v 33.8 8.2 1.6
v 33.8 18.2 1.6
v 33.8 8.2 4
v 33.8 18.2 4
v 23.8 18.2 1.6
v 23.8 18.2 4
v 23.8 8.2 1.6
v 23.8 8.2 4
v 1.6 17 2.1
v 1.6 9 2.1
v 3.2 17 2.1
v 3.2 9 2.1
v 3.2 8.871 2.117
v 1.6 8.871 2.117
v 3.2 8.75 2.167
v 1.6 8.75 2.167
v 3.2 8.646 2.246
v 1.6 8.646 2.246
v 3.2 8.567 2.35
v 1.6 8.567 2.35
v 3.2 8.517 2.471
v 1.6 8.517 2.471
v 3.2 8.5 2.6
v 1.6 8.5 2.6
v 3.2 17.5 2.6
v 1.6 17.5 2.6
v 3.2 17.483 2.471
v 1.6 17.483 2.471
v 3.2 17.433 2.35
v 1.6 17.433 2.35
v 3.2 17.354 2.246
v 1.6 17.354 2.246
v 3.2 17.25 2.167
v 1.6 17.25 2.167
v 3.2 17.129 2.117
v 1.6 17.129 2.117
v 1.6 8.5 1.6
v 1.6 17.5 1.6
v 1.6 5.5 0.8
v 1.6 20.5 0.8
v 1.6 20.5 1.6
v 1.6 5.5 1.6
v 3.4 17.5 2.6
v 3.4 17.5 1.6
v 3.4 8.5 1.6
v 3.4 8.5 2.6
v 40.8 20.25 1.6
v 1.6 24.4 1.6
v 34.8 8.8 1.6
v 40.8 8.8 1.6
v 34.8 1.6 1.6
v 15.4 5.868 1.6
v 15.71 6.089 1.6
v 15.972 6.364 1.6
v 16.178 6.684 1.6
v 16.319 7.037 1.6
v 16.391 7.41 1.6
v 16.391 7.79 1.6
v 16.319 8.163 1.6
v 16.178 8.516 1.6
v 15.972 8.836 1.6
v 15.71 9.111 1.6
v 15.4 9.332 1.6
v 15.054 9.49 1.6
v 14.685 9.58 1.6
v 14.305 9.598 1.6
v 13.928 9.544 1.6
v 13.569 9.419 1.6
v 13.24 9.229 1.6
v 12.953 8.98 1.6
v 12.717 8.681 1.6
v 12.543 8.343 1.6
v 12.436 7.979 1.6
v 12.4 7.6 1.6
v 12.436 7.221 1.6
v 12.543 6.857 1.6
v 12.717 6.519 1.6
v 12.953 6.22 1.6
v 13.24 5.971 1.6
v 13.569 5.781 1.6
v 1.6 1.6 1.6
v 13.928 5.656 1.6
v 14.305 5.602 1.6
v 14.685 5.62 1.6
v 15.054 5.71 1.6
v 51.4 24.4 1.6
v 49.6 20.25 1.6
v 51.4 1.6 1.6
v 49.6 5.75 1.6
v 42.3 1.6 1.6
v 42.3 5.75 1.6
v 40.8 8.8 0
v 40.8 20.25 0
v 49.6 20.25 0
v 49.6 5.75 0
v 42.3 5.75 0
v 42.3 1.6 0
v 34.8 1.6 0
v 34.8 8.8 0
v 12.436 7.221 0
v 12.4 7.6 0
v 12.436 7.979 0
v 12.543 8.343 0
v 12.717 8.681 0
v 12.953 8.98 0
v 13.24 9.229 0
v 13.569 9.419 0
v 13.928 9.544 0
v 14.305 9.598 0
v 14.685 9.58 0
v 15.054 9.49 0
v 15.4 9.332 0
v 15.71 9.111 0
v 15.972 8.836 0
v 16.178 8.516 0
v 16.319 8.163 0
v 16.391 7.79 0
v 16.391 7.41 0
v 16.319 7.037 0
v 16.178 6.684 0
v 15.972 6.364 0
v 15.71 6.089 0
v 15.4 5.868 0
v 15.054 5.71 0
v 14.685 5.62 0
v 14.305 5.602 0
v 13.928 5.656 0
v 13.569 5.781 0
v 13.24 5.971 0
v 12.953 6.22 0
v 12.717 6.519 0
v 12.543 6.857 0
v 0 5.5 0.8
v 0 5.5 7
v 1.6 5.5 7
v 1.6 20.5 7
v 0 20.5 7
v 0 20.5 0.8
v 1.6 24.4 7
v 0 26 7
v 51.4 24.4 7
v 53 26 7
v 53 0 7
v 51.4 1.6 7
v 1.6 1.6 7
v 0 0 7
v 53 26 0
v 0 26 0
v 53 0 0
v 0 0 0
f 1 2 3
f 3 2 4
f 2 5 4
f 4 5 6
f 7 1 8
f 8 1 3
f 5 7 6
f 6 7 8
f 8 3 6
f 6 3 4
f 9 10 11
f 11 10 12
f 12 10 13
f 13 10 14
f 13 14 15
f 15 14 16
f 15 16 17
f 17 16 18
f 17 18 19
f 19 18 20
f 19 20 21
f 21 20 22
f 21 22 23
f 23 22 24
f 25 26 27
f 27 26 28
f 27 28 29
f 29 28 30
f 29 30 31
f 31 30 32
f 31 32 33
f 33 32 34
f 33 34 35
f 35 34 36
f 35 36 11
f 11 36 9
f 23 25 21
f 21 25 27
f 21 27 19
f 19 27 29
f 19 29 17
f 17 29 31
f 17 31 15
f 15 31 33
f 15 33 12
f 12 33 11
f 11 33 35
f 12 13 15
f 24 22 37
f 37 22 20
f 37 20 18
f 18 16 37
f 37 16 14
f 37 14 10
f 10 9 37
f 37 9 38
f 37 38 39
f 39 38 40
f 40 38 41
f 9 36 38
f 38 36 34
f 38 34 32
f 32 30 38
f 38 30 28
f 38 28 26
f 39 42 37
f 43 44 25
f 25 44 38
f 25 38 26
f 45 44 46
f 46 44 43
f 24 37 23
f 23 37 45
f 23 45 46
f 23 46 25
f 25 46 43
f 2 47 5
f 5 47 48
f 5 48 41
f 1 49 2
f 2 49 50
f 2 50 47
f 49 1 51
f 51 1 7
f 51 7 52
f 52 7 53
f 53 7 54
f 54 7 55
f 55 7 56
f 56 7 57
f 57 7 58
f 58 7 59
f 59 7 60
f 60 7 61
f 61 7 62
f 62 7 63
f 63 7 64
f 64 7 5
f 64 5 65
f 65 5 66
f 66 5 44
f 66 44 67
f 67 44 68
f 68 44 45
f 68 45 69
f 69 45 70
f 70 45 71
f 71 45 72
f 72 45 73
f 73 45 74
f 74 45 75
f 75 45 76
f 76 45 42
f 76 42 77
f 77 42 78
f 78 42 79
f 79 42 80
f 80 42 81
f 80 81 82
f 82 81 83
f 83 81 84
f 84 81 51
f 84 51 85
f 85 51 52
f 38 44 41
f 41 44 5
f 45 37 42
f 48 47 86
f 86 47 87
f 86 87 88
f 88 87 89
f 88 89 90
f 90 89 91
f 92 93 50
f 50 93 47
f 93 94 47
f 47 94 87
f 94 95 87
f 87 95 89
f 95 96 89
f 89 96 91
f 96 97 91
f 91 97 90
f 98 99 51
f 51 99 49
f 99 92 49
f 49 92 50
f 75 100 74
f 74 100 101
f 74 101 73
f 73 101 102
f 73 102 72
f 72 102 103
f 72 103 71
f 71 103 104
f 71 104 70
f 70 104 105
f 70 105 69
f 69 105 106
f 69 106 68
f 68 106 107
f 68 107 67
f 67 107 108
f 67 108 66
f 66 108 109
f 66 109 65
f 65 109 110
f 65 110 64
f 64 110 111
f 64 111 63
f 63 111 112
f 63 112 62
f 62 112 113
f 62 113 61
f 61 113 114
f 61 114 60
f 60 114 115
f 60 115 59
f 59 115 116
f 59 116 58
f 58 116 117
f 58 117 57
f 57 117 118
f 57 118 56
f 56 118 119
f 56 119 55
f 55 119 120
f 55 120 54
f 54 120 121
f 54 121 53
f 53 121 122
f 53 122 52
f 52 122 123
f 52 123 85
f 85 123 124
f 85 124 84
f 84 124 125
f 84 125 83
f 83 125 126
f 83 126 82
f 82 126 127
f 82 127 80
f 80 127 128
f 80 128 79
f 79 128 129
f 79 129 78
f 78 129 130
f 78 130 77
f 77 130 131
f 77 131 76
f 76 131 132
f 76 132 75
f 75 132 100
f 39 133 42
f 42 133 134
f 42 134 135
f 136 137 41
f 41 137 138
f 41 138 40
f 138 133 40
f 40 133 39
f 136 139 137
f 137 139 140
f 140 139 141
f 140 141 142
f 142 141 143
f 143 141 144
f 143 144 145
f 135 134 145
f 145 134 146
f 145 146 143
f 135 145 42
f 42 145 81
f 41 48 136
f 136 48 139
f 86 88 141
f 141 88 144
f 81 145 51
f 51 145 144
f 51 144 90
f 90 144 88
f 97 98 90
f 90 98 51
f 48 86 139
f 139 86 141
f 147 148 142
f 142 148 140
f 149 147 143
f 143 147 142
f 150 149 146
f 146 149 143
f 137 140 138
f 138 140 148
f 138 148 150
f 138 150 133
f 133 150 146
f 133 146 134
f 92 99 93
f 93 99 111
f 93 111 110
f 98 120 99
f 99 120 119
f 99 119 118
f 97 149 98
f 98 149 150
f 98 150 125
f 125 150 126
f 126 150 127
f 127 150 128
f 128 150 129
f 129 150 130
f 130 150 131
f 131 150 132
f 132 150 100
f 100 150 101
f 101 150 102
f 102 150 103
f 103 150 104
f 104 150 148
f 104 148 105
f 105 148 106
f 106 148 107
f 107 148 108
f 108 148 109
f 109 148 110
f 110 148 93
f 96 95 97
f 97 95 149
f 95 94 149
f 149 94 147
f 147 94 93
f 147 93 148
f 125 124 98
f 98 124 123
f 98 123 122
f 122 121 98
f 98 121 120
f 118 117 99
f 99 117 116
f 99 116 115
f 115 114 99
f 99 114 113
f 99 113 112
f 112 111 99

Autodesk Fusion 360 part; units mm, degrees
sketch "Skizze1" plane through (0, 0, 0) normal (0, 0, 1) x (1, 0, 0)
  line L0 (0, 0) -> (53, 0)
  line L1 (53, 0) -> (53, 26)
  line L2 (53, 26) -> (0, 26)
  line L3 (0, 26) -> (0, 0)
  line L4 (1.6, 1.6) -> (51.4, 1.6)
  line L5 (51.4, 1.6) -> (51.4, 24.4)
  line L6 (51.4, 24.4) -> (1.6, 24.4)
  line L7 (1.6, 24.4) -> (1.6, 1.6)
  line L8 (3.4, 3.4) -> (49.6, 3.4)
  line L9 (49.6, 3.4) -> (49.6, 22.6)
  line L10 (49.6, 22.6) -> (3.4, 22.6)
  line L11 (3.4, 22.6) -> (3.4, 3.4)
  circle A0 centre (14.4, 7.6) radius 2
  line L12 (40.8, 20.25) -> (49.6, 20.25)
  line L13 (49.6, 20.25) -> (49.6, 5.75)
  line L14 (49.6, 5.75) -> (40.8, 5.75)
  line L15 (40.8, 5.75) -> (40.8, 20.25)
  line L16 (34.3, 22.6) -> (40.4, 22.6)
  line L17 (3.4, 8.5) -> (1.6, 8.5)
  line L18 (1.6, 8.5) -> (1.6, 17.5)
  line L19 (1.6, 17.5) -> (3.4, 17.5)
  line L20 (3.4, 17.5) -> (3.4, 8.5)
  line L21 (23.8, 8.2) -> (33.8, 8.2)
  line L22 (33.8, 8.2) -> (33.8, 18.2)
  line L23 (33.8, 18.2) -> (23.8, 18.2)
  line L24 (23.8, 18.2) -> (23.8, 8.2)
  line L25 (34.8, 1.6) -> (42.3, 1.6)
  line L26 (42.3, 1.6) -> (42.3, 8.8)
  line L27 (42.3, 8.8) -> (34.8, 8.8)
  line L28 (34.8, 8.8) -> (34.8, 1.6)
  dimension "d1" = 46.2
  dimension "d2" = 19.2
  dimension "d3" = 1.6
  dimension "d4" = 1.8
  dimension "d5" = 1.6
  dimension "d6" = 1.8
  dimension "d7" = 1.8
  dimension "d8" = 1.6
  dimension "d9" = 1.8
  dimension "d10" = 1.6
  dimension "d20" = 4
  dimension "d21" = 12.8
  dimension "d26" = 14.5
  dimension "d29" = 6
  dimension "d34" = 8.8
  dimension "d35" = 9
  dimension "d45" = 10
  dimension "d46" = 10
  dimension "d47" = 15.8
  dimension "d48" = 4.8
  dimension "d51" = 9.1
  dimension "d52" = 7.5
  dimension "d53" = 7.2
extrude "Extrusion1" add sketch "Skizze1" along normal blind 1.6 contours L0 L1 L2 L3 | L4 L7 L8 L11 L17 L28 | L4 L8 L25 L26 L28 | L7 L11 L17 L18 L19 L20 | L4 L5 L6 L7 L8 L9 L10 L11 L13 L16 L19 L26 | L8 L14 L15 L26 L27 L28 | L8 L9 L10 L11 L12 L15 L16 L20 L27 L28 | L8 L9 L14 L26 | L9 L12 L13 L14 L15 L26 L27 | L14 L15 L26 L27 | A0 | L21 L22 L23 L24
extrude "Extrusion2" add sketch "Skizze1" along normal blind 7 contours L0 L1 L2 L3
ref_plane "Arbeitsebene1" through (0, 13, 3.5) normal (-1, 0, 0) x (0, -1, 0)
sketch "Skizze2" plane through (0, 0, 0) normal (-1, 0, 0) x (0, -1, 0)
  line L0 (-20.5, 7) -> (-5.5, 7)
  line L1 (-5.5, 7) -> (-5.5, 0.8)
  line L2 (-5.5, 0.8) -> (-20.5, 0.8)
  line L3 (-20.5, 0.8) -> (-20.5, 7)
  line L4 (-26, 7) -> (0, 7)
  line L5 (-26, 0) -> (0, 0)
  dimension "d16" = 0.8
  dimension "d17" = 15
extrude "Extrusion3" cut sketch "Skizze2" against normal blind 1.6
extrude "Extrusion4" cut sketch "Skizze1" along normal blind 1.6 contours L4 L8 L25 L26 L28 | L8 L14 L15 L26 L27 L28 | L9 L12 L13 L14 L15 L26 L27 | L14 L15 L26 L27 | A0
extrude "Extrusion5" add sketch "Skizze1" along normal blind 2.6 contours L7 L11 L17 L18 L19 L20
ref_plane "Arbeitsebene2" through (1.6, 13, 1.7) normal (-1, 0, 0) x (0, 0, 1)
sketch "Skizze3" plane through (1.6, 0, 0) normal (-1, 0, 0) x (0, -1, 0)
  line L0 (-8.5, 2.6) -> (-17.5, 2.6)
  line L1 (-17, 2.1) -> (-9, 2.1)
  line L2 (-17.5, 2.6) -> (-8.5, 2.6)
  arc A0 (-9, 2.1) -> (-8.5, 2.6) centre (-9, 2.6) ccw
  arc A1 (-17.5, 2.6) -> (-17, 2.1) centre (-17, 2.6) ccw
  dimension "d39" = 0.5
  dimension "d41" = 0.5
  dimension "d42" = 0.5
extrude "Extrusion6" cut sketch "Skizze3" against normal blind 1.6
extrude "Extrusion7" add sketch "Skizze1" along normal blind 4 contours L21 L22 L23 L24
equation "d13 = 5.4 mm + 1.6 mm"
equation "d36 = 1.6 mm + 0.5 mm + 0.5 mm"
equation "d53 = 1.7 mm + 5.5 mm"
